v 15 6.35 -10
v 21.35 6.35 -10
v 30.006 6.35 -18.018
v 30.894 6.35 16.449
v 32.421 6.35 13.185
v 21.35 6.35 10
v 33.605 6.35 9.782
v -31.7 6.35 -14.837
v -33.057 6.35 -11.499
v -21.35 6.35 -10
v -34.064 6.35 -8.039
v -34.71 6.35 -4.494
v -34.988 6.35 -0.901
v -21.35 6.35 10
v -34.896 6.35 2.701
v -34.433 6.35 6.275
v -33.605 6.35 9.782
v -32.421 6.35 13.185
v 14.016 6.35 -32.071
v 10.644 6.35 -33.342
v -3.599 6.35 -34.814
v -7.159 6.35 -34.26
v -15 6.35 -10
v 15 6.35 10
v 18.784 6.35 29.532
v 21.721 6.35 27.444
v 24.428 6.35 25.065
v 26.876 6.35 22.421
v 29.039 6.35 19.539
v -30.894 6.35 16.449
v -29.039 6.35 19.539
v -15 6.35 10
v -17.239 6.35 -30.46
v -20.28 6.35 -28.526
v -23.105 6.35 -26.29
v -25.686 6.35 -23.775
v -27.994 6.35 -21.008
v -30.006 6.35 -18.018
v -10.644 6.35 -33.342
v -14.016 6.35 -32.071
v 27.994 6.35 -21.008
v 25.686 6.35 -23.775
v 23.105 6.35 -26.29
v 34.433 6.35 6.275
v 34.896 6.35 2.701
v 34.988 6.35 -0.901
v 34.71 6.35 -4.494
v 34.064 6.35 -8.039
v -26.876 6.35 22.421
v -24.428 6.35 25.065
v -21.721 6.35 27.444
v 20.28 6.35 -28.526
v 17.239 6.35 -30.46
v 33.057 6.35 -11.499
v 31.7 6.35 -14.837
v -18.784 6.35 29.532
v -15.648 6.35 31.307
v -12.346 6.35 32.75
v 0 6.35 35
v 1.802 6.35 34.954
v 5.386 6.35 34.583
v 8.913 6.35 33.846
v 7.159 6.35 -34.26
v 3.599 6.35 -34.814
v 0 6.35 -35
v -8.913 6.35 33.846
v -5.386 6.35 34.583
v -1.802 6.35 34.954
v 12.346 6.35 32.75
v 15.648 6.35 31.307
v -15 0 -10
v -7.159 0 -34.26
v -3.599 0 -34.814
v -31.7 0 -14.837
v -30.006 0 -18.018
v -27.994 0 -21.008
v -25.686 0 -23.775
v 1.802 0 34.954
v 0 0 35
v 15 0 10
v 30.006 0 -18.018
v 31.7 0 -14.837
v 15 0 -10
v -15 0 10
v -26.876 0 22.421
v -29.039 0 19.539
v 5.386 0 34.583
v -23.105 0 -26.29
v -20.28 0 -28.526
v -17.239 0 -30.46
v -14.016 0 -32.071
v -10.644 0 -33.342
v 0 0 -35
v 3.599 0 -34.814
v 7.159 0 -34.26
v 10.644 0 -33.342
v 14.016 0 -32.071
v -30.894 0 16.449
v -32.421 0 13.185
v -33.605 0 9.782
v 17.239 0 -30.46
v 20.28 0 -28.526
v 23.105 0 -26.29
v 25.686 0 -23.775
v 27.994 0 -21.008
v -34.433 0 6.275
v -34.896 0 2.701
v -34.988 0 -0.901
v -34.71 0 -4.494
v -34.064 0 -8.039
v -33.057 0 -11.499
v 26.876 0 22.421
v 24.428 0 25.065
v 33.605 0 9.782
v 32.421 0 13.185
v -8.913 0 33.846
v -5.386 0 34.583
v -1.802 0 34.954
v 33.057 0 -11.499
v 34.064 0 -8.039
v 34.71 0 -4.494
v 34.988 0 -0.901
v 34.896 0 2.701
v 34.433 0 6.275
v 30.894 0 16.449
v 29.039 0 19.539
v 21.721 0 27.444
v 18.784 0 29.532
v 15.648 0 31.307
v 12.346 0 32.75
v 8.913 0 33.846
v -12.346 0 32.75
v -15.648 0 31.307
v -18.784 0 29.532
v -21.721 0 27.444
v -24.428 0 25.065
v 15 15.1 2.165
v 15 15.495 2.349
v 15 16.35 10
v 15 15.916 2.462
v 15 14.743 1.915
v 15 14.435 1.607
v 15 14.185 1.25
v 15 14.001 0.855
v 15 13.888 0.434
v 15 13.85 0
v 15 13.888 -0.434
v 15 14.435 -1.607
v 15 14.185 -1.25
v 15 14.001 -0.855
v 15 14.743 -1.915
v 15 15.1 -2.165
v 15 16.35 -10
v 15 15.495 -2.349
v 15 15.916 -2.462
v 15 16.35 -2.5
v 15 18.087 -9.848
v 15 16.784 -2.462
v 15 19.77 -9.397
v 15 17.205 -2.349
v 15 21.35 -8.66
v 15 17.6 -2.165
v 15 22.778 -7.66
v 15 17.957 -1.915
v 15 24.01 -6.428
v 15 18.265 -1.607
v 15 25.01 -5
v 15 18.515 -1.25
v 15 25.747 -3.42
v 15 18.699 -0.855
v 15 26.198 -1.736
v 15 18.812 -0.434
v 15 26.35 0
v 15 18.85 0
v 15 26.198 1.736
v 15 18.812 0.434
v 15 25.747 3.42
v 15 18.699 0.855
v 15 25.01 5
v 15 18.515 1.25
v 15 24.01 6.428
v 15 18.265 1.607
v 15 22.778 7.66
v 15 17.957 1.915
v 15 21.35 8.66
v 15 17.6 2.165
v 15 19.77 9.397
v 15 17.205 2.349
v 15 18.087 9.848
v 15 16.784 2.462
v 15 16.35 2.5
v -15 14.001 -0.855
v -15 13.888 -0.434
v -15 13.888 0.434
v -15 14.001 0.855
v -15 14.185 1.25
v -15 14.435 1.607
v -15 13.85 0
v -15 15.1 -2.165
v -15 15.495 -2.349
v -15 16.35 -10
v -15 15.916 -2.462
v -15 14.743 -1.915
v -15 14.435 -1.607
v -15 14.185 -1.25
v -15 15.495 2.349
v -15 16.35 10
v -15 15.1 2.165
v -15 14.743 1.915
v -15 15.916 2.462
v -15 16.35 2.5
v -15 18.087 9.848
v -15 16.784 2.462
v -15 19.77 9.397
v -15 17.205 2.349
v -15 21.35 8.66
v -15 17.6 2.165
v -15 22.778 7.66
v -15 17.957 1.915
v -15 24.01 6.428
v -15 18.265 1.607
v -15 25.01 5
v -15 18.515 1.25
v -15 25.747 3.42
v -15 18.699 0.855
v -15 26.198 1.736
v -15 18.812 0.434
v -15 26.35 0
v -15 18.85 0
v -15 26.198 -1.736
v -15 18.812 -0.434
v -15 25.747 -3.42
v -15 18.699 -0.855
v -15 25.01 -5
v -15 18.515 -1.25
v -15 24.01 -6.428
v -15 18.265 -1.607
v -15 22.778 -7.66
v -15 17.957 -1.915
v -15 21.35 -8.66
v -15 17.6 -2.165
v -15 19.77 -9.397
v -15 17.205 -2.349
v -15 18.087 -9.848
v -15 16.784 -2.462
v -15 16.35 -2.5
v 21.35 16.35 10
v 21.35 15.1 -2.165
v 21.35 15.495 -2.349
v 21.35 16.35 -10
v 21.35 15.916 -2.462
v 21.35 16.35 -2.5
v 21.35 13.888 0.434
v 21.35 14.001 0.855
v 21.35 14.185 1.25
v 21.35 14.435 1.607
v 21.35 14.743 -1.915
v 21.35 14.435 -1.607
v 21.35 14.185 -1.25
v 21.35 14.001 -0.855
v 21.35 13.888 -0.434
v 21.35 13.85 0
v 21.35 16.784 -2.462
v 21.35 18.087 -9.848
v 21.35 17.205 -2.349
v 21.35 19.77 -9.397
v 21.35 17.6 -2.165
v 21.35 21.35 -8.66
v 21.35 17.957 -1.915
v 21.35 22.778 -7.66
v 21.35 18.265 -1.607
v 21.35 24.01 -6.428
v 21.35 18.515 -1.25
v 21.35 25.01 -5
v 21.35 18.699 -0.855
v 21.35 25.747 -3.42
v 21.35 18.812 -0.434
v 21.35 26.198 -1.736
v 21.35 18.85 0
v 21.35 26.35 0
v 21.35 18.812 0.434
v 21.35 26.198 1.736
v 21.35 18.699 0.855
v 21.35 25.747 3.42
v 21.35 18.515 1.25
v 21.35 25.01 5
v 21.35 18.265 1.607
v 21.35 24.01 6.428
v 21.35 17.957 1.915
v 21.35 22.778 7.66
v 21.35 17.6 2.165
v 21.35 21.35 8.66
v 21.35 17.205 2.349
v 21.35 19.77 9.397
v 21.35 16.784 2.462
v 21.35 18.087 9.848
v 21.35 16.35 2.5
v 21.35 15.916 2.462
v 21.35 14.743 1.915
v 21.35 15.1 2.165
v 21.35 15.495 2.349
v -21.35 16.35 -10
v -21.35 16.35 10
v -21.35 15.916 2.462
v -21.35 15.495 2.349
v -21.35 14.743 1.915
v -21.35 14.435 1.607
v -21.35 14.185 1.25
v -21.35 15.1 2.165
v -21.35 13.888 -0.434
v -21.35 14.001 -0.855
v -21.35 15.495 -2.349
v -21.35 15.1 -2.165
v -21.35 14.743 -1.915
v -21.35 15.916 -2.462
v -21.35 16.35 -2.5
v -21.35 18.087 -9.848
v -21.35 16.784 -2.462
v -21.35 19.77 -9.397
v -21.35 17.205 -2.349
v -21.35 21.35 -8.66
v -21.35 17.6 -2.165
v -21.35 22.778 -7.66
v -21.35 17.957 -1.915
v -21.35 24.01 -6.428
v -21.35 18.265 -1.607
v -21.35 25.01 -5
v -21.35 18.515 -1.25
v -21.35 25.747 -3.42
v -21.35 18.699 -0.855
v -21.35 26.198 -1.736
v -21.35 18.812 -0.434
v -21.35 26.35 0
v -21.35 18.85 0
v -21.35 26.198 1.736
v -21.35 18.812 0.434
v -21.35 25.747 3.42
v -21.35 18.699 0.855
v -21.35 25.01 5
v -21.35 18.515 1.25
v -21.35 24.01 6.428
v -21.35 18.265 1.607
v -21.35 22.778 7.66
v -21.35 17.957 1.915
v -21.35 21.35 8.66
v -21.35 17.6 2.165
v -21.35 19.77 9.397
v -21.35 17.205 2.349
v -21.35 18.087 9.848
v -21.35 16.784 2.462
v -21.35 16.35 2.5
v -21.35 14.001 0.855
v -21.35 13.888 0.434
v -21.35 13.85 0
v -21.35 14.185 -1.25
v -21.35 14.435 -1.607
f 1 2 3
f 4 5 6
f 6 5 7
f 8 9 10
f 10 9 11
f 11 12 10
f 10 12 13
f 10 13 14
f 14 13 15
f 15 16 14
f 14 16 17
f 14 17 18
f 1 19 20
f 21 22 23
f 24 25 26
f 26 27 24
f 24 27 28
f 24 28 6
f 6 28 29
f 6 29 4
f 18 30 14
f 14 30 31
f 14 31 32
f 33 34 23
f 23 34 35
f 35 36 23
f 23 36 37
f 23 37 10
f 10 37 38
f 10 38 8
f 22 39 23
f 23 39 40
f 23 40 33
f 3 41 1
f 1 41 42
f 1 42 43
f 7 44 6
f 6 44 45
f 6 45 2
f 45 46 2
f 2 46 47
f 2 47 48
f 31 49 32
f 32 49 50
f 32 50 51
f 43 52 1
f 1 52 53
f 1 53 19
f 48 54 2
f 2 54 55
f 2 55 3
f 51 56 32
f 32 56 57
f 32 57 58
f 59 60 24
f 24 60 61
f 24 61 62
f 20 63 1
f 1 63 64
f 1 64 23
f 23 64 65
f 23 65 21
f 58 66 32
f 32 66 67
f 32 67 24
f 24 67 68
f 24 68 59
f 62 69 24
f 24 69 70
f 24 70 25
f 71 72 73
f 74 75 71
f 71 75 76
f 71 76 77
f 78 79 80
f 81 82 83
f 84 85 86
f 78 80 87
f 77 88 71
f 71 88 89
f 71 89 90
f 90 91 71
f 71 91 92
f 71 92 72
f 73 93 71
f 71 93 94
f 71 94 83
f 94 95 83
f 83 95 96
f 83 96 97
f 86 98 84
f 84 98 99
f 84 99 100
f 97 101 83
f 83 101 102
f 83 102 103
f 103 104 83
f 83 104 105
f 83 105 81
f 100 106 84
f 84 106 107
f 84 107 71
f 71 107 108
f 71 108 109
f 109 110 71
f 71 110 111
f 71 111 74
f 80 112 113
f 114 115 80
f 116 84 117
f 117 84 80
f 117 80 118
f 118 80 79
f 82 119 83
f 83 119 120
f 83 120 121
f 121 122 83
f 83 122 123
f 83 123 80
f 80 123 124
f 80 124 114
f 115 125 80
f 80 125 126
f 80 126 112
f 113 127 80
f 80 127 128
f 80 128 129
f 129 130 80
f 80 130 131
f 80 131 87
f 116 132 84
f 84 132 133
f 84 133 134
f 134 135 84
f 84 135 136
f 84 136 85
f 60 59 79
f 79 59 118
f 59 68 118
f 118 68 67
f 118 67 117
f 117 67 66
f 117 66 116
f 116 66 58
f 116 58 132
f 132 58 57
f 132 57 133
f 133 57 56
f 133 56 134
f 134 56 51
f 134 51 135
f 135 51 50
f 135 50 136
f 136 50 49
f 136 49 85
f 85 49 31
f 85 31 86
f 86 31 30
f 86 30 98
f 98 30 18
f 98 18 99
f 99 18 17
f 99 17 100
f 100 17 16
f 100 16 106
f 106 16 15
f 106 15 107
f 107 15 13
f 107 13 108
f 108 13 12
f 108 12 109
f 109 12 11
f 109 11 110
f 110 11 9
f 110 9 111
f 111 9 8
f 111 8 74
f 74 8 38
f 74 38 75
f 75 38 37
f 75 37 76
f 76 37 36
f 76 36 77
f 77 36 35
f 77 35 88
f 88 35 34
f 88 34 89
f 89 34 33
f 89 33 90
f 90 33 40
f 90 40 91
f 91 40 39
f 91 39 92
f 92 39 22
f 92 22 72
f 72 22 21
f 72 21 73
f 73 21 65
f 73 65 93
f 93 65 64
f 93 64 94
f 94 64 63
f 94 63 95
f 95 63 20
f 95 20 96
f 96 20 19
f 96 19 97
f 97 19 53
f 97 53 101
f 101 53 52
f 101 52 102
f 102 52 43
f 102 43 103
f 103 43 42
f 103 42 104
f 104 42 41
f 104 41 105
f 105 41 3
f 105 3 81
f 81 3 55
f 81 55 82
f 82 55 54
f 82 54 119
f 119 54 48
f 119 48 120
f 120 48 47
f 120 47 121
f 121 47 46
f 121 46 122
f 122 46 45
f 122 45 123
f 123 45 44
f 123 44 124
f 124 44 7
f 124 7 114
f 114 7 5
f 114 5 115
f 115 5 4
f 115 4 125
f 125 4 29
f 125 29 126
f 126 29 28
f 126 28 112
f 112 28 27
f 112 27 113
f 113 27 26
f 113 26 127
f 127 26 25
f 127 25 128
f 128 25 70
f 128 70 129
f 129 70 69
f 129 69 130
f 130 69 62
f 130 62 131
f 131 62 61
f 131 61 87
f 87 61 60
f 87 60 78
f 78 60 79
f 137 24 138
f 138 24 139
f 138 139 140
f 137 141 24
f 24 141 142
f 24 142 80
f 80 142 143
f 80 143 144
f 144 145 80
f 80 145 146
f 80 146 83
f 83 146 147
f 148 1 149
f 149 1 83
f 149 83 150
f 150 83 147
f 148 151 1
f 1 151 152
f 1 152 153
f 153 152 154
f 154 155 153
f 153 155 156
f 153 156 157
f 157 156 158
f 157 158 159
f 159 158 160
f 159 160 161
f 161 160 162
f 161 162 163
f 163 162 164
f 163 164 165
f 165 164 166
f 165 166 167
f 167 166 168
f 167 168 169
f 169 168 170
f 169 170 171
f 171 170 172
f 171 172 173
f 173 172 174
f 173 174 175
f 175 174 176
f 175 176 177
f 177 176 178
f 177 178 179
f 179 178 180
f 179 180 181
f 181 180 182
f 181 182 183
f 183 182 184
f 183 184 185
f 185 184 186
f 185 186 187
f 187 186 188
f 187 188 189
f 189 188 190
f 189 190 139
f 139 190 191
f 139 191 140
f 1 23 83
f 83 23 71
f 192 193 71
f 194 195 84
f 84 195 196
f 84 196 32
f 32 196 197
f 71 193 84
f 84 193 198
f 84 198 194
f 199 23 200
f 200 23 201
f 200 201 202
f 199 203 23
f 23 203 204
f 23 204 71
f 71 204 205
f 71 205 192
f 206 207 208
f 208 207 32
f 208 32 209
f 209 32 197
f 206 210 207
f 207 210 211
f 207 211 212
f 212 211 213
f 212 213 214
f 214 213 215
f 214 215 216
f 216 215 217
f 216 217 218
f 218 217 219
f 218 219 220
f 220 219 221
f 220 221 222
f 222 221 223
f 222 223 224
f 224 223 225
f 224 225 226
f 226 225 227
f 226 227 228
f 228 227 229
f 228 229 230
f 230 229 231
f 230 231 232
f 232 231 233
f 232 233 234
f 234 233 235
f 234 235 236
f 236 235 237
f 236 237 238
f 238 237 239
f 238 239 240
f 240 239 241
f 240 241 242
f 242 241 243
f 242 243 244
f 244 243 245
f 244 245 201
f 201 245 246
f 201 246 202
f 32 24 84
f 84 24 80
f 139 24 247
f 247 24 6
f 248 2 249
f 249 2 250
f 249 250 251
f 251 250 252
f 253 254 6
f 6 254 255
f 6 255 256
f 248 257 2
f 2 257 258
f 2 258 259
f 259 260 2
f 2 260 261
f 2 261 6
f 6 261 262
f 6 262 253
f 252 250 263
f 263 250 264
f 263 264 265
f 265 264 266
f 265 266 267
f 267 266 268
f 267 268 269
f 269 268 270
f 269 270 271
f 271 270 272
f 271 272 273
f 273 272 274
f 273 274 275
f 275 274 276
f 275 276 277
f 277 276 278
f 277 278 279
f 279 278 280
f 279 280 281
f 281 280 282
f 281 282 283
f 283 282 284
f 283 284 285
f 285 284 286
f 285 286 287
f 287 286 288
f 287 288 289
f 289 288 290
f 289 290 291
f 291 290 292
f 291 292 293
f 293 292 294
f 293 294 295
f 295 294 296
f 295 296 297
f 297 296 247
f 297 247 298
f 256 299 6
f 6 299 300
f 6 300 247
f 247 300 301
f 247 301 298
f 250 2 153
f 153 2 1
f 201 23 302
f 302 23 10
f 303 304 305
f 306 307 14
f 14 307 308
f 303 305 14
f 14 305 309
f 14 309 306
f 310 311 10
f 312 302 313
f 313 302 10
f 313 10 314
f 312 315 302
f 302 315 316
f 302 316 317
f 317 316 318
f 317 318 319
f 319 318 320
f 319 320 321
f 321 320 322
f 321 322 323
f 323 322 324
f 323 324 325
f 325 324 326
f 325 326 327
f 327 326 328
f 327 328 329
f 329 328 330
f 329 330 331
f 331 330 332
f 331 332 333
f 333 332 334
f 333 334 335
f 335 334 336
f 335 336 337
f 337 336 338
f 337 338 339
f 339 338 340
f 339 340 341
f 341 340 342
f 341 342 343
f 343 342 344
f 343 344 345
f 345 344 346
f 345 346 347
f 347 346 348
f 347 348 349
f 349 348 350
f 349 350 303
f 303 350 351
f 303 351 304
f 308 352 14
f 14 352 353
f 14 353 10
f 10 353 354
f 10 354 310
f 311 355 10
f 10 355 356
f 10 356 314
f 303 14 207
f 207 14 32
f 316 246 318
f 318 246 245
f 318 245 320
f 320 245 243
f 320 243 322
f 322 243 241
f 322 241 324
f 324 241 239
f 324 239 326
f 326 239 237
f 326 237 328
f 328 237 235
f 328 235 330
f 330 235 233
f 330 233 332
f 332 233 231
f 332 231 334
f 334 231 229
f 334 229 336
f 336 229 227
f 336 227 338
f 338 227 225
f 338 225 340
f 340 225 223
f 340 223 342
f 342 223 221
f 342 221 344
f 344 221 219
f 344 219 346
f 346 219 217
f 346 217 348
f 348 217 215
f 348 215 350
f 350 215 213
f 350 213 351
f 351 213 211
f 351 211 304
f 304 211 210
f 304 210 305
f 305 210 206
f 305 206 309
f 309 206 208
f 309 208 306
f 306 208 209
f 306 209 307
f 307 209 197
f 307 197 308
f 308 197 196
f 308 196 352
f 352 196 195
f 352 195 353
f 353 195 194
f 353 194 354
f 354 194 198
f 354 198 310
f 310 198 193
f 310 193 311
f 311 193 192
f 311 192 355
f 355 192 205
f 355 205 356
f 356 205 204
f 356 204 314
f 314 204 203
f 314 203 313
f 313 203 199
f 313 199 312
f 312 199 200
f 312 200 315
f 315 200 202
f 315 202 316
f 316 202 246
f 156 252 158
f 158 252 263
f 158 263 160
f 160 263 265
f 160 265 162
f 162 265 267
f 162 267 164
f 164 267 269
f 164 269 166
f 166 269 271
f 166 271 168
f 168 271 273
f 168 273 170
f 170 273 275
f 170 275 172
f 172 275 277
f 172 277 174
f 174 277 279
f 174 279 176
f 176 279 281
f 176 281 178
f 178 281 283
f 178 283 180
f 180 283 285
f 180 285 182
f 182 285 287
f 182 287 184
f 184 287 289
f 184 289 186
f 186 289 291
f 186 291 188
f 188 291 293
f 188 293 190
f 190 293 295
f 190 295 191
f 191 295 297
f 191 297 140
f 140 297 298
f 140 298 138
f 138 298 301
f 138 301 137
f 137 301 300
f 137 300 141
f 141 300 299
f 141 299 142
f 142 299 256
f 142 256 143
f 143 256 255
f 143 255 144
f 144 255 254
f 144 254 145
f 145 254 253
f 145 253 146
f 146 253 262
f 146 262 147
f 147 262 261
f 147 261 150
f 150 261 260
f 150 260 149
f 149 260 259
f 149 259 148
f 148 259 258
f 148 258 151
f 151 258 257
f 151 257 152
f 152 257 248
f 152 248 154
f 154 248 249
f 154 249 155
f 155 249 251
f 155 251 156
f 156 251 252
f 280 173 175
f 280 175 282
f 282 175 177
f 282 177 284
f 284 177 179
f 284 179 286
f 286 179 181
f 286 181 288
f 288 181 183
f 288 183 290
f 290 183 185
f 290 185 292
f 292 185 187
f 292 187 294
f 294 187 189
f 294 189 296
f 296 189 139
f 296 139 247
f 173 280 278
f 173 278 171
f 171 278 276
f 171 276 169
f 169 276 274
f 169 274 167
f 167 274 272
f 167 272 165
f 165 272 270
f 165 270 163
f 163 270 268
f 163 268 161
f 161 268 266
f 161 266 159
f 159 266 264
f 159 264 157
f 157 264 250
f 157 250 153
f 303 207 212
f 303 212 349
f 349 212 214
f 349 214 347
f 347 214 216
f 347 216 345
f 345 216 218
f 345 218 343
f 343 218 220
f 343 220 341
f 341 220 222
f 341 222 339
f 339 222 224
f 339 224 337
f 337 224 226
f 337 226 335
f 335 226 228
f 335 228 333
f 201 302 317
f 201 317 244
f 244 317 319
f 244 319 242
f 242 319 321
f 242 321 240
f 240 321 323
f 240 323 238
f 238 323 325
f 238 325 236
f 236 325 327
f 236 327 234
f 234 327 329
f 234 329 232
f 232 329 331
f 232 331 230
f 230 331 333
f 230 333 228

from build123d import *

# Parameters (mm, degrees)
SKETCH1_R           = 35
SKETCH1_W           = 30
SKETCH1_H           = 20
BOSS_EXTRUDE1_DEPTH = 6.35
SKETCH2_W           = 6.35
SKETCH2_H           = 20
BOSS_EXTRUDE2_DEPTH = 20
SKETCH3_R           = 2.5
CUT_EXTRUDE1_DEPTH  = 57
FILLET1_R           = 10


with BuildPart() as part:
    # Sketch1 → Boss-Extrude1 (new body)
    with BuildSketch(Plane(origin=(0, 0, 0), x_dir=(1, 0, 0), z_dir=(0, 1, 0))):
        with Locations(Location((0, 0, 0), (0, 0, 270))):
            Circle(SKETCH1_R)
        Rectangle(SKETCH1_W, SKETCH1_H, mode=Mode.SUBTRACT)
    extrude(amount=BOSS_EXTRUDE1_DEPTH)

    # Sketch2 → Boss-Extrude2 (add)
    with BuildSketch(Plane(origin=(0, 6.35, 0), x_dir=(1, 0, 0), z_dir=(0, 1, 0))):
        with Locations((-18.175, 0)):
            Rectangle(SKETCH2_W, SKETCH2_H)
        with Locations((18.175, 0)):
            Rectangle(SKETCH2_W, SKETCH2_H)
    extrude(amount=BOSS_EXTRUDE2_DEPTH)

    # Sketch3 → Cut-Extrude1 (cut)
    with BuildSketch(Plane(origin=(21.35, 0, 0), x_dir=(0, 0, -1), z_dir=(1, 0, 0))):
        with Locations((0, 16.35)):
            Circle(SKETCH3_R)
    extrude(amount=-CUT_EXTRUDE1_DEPTH, mode=Mode.SUBTRACT)

    # Fillet1
    fillet1_edges = [part.edges().sort_by_distance(p)[0] for p in [
        (18.175, 26.35, -10),
        (18.175, 26.35, 10),
        (-18.175, 26.35, -10),
        (-18.175, 26.35, 10),
    ]]
    fillet(fillet1_edges, radius=FILLET1_R - 0.0001)  # a hair under: the kernel refuses the full size


solid = part.part
